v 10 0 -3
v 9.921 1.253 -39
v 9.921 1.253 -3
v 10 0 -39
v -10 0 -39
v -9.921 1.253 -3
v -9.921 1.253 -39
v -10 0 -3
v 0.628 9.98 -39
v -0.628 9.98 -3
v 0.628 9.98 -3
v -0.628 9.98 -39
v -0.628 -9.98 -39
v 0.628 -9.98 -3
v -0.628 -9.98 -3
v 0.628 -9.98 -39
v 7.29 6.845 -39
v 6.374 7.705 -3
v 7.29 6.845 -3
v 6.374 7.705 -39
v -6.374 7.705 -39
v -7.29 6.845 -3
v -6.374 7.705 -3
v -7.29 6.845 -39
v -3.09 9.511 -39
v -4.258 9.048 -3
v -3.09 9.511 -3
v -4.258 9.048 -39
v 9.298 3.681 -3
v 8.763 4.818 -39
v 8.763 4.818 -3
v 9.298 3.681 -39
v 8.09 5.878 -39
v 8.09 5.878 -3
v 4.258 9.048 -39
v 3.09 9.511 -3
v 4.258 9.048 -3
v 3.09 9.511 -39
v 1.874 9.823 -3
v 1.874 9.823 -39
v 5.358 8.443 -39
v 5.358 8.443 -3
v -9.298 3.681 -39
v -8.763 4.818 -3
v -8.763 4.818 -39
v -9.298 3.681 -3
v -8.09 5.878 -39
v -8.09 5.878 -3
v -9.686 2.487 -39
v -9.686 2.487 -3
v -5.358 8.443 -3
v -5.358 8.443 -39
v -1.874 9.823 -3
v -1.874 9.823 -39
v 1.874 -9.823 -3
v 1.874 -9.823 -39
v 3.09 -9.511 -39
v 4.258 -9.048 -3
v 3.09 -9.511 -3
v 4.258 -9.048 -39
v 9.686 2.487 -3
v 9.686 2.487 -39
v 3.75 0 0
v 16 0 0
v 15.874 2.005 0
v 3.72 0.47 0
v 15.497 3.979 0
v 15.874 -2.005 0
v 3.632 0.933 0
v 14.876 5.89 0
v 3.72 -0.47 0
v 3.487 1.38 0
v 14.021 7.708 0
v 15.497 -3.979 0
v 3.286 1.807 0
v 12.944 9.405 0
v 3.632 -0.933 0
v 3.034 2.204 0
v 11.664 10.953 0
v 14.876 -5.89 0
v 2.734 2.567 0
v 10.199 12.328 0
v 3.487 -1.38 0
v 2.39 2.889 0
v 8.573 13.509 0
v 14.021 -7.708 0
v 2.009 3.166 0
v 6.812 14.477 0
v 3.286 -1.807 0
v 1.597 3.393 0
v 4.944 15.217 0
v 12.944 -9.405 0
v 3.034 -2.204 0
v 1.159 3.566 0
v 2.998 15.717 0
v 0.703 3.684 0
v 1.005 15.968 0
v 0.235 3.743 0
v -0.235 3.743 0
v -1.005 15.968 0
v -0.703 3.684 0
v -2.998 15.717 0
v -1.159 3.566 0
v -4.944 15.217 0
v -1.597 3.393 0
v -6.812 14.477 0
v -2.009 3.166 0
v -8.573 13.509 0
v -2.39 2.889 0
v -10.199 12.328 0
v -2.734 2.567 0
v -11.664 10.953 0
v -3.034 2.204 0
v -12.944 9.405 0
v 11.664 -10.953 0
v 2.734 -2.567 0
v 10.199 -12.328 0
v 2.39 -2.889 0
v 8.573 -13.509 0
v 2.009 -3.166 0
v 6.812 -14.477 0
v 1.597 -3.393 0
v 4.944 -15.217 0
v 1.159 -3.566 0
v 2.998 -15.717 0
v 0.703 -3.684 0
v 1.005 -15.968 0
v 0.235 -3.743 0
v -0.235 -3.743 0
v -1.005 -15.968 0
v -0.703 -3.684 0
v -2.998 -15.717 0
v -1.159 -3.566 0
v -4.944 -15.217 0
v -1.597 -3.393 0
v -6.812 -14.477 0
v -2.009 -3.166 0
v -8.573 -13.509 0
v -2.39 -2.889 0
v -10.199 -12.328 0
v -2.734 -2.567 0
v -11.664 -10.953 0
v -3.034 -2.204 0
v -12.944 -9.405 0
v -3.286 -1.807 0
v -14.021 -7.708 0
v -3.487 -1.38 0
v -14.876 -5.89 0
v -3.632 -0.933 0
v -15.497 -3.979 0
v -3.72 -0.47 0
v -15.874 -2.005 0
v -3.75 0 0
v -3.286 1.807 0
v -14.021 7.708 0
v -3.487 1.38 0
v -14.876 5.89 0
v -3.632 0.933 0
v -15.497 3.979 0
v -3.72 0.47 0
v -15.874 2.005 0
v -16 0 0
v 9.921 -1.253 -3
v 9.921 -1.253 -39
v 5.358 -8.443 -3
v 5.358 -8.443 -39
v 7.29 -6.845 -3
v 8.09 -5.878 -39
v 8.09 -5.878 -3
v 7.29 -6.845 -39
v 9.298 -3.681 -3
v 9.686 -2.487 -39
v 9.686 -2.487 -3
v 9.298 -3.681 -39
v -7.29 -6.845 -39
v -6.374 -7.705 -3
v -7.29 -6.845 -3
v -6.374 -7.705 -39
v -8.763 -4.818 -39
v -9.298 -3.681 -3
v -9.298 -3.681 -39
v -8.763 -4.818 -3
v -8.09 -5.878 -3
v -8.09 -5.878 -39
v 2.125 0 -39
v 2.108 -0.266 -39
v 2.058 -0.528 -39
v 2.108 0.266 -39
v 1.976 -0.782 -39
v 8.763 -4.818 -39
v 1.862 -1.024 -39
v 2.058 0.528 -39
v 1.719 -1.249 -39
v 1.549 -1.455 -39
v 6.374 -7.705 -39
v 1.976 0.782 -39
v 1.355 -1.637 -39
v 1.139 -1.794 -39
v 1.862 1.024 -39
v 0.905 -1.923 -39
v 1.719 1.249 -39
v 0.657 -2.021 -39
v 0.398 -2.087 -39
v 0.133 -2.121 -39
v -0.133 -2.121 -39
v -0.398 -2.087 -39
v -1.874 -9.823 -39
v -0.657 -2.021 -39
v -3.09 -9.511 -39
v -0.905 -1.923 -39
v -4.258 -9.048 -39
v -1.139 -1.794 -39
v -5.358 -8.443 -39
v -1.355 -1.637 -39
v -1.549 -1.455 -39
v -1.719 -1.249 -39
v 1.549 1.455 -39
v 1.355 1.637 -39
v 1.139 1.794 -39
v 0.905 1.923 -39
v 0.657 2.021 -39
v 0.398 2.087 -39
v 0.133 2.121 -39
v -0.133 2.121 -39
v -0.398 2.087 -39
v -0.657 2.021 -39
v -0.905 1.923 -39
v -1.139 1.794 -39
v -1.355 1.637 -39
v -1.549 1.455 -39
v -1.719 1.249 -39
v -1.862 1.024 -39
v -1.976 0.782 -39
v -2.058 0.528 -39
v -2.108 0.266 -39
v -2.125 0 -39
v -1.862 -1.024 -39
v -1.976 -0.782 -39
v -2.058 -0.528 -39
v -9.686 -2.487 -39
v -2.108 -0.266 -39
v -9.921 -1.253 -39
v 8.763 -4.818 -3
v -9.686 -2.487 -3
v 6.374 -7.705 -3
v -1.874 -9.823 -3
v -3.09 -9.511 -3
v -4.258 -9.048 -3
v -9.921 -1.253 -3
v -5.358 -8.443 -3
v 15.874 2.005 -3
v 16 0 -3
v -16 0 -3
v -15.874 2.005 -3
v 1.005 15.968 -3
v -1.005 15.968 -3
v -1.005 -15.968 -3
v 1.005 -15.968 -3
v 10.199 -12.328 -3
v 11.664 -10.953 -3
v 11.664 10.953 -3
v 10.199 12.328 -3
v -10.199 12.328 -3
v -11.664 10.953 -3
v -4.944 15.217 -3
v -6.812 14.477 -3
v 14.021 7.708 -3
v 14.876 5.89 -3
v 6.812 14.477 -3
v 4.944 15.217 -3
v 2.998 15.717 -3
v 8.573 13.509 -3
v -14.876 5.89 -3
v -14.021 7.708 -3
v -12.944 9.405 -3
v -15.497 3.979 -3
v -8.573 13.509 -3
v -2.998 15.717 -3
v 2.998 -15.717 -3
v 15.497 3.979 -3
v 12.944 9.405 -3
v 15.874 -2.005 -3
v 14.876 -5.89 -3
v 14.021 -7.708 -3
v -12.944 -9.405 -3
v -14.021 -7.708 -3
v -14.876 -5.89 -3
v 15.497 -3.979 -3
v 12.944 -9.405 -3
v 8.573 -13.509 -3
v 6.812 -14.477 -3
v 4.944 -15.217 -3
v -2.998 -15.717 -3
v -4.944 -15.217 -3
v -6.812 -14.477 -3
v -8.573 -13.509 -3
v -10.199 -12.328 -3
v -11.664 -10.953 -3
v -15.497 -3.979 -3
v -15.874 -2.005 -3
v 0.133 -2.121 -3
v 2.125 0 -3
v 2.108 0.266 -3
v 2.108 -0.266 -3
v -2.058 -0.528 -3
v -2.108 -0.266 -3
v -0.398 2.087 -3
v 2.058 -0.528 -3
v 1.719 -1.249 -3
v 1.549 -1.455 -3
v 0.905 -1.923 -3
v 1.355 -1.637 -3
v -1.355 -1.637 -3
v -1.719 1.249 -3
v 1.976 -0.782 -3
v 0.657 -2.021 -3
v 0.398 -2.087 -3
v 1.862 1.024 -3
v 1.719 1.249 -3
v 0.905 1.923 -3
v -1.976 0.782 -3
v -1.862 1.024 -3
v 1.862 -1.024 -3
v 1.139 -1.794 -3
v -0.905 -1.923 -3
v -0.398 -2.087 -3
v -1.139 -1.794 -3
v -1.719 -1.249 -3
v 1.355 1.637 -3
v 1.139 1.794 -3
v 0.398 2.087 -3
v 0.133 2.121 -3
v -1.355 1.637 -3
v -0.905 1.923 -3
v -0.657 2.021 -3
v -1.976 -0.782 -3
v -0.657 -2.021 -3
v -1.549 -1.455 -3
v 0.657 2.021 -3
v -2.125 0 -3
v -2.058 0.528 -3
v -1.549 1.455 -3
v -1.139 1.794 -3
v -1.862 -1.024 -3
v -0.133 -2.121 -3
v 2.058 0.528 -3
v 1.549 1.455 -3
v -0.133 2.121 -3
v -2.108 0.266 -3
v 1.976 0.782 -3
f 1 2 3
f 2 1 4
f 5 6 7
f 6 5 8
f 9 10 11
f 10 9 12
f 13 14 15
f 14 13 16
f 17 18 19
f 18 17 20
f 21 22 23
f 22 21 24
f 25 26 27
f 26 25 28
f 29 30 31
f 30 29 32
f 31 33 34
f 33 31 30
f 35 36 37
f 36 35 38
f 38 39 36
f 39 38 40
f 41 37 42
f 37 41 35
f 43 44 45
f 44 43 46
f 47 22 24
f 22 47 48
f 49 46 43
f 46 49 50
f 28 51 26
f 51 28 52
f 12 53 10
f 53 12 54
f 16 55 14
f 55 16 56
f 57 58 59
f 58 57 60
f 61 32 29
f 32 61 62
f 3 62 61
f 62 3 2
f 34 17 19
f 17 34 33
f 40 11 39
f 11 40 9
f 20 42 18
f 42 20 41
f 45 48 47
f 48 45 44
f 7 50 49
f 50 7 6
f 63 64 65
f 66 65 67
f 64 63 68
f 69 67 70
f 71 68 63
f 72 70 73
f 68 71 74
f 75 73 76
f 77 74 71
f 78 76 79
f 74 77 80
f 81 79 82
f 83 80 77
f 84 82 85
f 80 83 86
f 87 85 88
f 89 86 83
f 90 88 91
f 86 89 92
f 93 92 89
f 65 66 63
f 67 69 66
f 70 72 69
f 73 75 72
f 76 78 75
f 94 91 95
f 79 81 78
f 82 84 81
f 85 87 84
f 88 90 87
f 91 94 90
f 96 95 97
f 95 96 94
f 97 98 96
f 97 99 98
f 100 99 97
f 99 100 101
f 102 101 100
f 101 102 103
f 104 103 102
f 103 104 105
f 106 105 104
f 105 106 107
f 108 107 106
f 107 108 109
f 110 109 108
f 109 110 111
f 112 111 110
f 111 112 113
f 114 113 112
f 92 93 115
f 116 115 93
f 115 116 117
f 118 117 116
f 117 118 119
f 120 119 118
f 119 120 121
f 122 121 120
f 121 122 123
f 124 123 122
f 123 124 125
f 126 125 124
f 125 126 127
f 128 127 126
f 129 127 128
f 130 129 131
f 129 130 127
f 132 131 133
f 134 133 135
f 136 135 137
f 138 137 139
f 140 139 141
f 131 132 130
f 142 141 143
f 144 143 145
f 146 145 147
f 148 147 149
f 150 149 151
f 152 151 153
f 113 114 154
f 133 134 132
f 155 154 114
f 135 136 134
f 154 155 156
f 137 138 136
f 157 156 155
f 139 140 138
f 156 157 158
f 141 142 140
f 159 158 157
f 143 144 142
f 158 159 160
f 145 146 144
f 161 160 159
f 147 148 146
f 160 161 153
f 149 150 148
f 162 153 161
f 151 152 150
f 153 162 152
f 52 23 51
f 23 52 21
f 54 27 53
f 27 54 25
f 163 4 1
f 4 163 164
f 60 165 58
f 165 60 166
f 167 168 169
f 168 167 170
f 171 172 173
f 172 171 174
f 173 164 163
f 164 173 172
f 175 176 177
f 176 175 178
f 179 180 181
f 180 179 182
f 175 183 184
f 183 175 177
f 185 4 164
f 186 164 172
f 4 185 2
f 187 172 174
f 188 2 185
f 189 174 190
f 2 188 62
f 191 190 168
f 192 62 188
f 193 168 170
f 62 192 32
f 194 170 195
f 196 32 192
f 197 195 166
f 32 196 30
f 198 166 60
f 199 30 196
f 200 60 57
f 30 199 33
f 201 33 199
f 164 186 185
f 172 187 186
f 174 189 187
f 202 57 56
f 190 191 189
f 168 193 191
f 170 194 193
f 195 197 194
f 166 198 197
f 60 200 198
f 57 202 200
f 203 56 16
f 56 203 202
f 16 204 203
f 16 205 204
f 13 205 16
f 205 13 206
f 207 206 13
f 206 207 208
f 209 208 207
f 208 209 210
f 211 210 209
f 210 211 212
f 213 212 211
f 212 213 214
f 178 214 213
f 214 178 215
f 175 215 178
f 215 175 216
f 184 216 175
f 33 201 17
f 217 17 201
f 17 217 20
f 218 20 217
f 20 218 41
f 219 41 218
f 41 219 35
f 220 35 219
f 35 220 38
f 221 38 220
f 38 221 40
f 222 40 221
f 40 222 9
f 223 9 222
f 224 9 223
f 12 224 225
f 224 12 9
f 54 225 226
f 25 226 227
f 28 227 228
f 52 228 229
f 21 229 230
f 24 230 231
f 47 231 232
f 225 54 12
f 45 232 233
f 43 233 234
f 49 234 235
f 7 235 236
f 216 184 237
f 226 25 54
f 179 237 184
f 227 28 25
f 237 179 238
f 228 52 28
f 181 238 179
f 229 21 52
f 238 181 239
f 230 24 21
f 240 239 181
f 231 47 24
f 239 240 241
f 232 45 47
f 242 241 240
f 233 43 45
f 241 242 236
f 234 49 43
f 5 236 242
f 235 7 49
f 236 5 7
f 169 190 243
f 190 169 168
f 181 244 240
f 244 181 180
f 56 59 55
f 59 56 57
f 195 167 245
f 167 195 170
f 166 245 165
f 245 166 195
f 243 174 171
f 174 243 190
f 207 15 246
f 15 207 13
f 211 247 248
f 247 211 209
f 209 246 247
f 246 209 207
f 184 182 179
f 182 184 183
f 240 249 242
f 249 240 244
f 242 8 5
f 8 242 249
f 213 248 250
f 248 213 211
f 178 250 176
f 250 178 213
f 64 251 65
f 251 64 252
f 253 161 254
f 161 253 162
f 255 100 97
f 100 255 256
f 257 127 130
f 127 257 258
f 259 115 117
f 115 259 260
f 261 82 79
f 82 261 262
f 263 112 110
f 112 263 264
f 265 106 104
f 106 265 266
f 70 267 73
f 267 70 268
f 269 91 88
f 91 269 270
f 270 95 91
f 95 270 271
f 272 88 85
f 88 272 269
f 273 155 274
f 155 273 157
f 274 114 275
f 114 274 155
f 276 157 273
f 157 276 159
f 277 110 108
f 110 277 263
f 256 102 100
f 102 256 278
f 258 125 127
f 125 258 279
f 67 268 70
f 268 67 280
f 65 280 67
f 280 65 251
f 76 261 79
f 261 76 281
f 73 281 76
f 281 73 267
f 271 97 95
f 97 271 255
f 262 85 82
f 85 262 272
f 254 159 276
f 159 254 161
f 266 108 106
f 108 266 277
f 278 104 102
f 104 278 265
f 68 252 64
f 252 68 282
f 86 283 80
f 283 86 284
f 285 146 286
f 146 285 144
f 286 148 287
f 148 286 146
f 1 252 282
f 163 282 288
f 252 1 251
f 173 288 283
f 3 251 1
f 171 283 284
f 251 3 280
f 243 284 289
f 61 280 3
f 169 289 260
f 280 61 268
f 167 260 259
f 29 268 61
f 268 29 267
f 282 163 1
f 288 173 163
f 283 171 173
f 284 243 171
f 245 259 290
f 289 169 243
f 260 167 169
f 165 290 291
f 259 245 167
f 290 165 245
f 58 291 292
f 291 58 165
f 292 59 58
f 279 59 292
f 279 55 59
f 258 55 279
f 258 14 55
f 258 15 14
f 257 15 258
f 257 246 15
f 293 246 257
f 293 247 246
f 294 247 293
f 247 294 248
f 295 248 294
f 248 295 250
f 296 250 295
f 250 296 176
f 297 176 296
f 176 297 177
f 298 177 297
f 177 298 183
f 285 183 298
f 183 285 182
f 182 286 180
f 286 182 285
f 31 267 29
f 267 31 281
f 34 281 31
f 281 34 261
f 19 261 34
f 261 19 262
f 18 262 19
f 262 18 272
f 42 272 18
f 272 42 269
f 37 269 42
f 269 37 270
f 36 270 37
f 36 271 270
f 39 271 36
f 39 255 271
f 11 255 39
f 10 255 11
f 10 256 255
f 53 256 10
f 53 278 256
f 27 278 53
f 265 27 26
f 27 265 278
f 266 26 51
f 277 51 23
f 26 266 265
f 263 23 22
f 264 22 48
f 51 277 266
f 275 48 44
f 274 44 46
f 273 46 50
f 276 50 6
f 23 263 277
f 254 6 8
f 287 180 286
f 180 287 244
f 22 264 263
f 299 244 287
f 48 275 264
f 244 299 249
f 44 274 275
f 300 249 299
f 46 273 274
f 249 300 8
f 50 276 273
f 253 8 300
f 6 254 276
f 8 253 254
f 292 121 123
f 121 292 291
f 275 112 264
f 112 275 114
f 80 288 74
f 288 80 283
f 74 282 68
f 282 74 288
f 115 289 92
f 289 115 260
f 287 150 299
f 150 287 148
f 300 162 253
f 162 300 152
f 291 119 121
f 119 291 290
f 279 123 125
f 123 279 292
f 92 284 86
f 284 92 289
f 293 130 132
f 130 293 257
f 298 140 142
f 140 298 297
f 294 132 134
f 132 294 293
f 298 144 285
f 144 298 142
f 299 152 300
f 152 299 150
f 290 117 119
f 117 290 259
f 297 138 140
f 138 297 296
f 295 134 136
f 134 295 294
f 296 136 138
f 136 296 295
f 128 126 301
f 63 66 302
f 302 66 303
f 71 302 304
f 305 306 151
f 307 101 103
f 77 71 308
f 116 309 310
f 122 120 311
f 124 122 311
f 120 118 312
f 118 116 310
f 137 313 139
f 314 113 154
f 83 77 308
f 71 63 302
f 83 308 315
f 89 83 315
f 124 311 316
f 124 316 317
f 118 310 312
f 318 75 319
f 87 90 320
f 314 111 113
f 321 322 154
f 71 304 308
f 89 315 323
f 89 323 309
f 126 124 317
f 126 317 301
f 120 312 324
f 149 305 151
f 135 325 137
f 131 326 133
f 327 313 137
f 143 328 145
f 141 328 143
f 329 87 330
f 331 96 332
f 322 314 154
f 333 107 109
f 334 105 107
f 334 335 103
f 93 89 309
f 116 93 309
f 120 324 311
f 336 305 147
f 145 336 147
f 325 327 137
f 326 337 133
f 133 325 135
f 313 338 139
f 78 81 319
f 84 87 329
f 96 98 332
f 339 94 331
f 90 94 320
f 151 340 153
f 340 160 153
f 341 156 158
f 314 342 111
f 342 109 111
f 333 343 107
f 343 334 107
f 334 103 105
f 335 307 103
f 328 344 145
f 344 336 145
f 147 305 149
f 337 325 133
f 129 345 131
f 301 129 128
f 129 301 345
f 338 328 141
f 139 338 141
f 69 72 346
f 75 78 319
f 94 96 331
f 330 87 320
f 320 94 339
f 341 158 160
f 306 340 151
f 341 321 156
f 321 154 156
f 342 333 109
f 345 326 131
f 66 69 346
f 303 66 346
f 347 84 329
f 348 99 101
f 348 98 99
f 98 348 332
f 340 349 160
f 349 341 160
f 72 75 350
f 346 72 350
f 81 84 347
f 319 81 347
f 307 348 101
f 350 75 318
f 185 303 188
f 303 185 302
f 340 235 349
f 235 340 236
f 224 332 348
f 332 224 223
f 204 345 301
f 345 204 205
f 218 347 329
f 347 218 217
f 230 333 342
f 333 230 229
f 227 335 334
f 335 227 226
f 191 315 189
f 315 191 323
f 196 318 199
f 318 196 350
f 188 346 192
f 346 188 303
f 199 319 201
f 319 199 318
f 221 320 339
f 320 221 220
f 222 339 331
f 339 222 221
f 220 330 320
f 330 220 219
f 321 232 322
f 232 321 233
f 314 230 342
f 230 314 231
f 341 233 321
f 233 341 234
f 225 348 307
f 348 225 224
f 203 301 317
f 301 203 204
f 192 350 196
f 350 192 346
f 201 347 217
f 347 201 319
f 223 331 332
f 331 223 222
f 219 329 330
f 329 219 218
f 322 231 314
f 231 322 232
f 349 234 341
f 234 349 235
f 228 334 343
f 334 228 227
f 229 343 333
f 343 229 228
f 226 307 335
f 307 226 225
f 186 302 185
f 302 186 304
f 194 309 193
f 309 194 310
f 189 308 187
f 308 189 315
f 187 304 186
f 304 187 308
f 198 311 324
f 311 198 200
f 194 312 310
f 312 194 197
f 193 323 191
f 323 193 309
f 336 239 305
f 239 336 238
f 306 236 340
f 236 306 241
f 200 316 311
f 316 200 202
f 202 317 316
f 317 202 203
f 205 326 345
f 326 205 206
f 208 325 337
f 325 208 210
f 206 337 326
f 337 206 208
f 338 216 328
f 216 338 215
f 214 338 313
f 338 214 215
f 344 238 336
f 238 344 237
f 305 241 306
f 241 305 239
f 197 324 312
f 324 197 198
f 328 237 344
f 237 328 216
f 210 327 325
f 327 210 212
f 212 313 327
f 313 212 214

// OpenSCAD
$fn = 50;


difference() {
	union() {
		translate(v = [0, 0, -39.0000000000]) {
			cylinder(h = 39, r = 10.0000000000);
		}
		translate(v = [0, 0, -3.0000000000]) {
			cylinder(h = 3, r = 16.0000000000);
		}
	}
	union() {
		translate(v = [0, 0, 0]) {
			rotate(a = [0, 0, 0]) {
				difference() {
					union() {
						#translate(v = [0, 0, -39.0000000000]) {
							cylinder(h = 39, r = 2.0000000000);
						}
						#translate(v = [0, 0, -3]) {
							cylinder(h = 3, r = 10.0000000000, r1 = 2.1250000000, r2 = 3.7500000000);
						}
						#translate(v = [0, 0, -39.0000000000]) {
							cylinder(h = 39, r = 2.1250000000);
						}
						#translate(v = [0, 0, -39.0000000000]) {
							cylinder(h = 39, r = 2.0000000000);
						}
					}
					union();
				}
			}
		}
	}
}
